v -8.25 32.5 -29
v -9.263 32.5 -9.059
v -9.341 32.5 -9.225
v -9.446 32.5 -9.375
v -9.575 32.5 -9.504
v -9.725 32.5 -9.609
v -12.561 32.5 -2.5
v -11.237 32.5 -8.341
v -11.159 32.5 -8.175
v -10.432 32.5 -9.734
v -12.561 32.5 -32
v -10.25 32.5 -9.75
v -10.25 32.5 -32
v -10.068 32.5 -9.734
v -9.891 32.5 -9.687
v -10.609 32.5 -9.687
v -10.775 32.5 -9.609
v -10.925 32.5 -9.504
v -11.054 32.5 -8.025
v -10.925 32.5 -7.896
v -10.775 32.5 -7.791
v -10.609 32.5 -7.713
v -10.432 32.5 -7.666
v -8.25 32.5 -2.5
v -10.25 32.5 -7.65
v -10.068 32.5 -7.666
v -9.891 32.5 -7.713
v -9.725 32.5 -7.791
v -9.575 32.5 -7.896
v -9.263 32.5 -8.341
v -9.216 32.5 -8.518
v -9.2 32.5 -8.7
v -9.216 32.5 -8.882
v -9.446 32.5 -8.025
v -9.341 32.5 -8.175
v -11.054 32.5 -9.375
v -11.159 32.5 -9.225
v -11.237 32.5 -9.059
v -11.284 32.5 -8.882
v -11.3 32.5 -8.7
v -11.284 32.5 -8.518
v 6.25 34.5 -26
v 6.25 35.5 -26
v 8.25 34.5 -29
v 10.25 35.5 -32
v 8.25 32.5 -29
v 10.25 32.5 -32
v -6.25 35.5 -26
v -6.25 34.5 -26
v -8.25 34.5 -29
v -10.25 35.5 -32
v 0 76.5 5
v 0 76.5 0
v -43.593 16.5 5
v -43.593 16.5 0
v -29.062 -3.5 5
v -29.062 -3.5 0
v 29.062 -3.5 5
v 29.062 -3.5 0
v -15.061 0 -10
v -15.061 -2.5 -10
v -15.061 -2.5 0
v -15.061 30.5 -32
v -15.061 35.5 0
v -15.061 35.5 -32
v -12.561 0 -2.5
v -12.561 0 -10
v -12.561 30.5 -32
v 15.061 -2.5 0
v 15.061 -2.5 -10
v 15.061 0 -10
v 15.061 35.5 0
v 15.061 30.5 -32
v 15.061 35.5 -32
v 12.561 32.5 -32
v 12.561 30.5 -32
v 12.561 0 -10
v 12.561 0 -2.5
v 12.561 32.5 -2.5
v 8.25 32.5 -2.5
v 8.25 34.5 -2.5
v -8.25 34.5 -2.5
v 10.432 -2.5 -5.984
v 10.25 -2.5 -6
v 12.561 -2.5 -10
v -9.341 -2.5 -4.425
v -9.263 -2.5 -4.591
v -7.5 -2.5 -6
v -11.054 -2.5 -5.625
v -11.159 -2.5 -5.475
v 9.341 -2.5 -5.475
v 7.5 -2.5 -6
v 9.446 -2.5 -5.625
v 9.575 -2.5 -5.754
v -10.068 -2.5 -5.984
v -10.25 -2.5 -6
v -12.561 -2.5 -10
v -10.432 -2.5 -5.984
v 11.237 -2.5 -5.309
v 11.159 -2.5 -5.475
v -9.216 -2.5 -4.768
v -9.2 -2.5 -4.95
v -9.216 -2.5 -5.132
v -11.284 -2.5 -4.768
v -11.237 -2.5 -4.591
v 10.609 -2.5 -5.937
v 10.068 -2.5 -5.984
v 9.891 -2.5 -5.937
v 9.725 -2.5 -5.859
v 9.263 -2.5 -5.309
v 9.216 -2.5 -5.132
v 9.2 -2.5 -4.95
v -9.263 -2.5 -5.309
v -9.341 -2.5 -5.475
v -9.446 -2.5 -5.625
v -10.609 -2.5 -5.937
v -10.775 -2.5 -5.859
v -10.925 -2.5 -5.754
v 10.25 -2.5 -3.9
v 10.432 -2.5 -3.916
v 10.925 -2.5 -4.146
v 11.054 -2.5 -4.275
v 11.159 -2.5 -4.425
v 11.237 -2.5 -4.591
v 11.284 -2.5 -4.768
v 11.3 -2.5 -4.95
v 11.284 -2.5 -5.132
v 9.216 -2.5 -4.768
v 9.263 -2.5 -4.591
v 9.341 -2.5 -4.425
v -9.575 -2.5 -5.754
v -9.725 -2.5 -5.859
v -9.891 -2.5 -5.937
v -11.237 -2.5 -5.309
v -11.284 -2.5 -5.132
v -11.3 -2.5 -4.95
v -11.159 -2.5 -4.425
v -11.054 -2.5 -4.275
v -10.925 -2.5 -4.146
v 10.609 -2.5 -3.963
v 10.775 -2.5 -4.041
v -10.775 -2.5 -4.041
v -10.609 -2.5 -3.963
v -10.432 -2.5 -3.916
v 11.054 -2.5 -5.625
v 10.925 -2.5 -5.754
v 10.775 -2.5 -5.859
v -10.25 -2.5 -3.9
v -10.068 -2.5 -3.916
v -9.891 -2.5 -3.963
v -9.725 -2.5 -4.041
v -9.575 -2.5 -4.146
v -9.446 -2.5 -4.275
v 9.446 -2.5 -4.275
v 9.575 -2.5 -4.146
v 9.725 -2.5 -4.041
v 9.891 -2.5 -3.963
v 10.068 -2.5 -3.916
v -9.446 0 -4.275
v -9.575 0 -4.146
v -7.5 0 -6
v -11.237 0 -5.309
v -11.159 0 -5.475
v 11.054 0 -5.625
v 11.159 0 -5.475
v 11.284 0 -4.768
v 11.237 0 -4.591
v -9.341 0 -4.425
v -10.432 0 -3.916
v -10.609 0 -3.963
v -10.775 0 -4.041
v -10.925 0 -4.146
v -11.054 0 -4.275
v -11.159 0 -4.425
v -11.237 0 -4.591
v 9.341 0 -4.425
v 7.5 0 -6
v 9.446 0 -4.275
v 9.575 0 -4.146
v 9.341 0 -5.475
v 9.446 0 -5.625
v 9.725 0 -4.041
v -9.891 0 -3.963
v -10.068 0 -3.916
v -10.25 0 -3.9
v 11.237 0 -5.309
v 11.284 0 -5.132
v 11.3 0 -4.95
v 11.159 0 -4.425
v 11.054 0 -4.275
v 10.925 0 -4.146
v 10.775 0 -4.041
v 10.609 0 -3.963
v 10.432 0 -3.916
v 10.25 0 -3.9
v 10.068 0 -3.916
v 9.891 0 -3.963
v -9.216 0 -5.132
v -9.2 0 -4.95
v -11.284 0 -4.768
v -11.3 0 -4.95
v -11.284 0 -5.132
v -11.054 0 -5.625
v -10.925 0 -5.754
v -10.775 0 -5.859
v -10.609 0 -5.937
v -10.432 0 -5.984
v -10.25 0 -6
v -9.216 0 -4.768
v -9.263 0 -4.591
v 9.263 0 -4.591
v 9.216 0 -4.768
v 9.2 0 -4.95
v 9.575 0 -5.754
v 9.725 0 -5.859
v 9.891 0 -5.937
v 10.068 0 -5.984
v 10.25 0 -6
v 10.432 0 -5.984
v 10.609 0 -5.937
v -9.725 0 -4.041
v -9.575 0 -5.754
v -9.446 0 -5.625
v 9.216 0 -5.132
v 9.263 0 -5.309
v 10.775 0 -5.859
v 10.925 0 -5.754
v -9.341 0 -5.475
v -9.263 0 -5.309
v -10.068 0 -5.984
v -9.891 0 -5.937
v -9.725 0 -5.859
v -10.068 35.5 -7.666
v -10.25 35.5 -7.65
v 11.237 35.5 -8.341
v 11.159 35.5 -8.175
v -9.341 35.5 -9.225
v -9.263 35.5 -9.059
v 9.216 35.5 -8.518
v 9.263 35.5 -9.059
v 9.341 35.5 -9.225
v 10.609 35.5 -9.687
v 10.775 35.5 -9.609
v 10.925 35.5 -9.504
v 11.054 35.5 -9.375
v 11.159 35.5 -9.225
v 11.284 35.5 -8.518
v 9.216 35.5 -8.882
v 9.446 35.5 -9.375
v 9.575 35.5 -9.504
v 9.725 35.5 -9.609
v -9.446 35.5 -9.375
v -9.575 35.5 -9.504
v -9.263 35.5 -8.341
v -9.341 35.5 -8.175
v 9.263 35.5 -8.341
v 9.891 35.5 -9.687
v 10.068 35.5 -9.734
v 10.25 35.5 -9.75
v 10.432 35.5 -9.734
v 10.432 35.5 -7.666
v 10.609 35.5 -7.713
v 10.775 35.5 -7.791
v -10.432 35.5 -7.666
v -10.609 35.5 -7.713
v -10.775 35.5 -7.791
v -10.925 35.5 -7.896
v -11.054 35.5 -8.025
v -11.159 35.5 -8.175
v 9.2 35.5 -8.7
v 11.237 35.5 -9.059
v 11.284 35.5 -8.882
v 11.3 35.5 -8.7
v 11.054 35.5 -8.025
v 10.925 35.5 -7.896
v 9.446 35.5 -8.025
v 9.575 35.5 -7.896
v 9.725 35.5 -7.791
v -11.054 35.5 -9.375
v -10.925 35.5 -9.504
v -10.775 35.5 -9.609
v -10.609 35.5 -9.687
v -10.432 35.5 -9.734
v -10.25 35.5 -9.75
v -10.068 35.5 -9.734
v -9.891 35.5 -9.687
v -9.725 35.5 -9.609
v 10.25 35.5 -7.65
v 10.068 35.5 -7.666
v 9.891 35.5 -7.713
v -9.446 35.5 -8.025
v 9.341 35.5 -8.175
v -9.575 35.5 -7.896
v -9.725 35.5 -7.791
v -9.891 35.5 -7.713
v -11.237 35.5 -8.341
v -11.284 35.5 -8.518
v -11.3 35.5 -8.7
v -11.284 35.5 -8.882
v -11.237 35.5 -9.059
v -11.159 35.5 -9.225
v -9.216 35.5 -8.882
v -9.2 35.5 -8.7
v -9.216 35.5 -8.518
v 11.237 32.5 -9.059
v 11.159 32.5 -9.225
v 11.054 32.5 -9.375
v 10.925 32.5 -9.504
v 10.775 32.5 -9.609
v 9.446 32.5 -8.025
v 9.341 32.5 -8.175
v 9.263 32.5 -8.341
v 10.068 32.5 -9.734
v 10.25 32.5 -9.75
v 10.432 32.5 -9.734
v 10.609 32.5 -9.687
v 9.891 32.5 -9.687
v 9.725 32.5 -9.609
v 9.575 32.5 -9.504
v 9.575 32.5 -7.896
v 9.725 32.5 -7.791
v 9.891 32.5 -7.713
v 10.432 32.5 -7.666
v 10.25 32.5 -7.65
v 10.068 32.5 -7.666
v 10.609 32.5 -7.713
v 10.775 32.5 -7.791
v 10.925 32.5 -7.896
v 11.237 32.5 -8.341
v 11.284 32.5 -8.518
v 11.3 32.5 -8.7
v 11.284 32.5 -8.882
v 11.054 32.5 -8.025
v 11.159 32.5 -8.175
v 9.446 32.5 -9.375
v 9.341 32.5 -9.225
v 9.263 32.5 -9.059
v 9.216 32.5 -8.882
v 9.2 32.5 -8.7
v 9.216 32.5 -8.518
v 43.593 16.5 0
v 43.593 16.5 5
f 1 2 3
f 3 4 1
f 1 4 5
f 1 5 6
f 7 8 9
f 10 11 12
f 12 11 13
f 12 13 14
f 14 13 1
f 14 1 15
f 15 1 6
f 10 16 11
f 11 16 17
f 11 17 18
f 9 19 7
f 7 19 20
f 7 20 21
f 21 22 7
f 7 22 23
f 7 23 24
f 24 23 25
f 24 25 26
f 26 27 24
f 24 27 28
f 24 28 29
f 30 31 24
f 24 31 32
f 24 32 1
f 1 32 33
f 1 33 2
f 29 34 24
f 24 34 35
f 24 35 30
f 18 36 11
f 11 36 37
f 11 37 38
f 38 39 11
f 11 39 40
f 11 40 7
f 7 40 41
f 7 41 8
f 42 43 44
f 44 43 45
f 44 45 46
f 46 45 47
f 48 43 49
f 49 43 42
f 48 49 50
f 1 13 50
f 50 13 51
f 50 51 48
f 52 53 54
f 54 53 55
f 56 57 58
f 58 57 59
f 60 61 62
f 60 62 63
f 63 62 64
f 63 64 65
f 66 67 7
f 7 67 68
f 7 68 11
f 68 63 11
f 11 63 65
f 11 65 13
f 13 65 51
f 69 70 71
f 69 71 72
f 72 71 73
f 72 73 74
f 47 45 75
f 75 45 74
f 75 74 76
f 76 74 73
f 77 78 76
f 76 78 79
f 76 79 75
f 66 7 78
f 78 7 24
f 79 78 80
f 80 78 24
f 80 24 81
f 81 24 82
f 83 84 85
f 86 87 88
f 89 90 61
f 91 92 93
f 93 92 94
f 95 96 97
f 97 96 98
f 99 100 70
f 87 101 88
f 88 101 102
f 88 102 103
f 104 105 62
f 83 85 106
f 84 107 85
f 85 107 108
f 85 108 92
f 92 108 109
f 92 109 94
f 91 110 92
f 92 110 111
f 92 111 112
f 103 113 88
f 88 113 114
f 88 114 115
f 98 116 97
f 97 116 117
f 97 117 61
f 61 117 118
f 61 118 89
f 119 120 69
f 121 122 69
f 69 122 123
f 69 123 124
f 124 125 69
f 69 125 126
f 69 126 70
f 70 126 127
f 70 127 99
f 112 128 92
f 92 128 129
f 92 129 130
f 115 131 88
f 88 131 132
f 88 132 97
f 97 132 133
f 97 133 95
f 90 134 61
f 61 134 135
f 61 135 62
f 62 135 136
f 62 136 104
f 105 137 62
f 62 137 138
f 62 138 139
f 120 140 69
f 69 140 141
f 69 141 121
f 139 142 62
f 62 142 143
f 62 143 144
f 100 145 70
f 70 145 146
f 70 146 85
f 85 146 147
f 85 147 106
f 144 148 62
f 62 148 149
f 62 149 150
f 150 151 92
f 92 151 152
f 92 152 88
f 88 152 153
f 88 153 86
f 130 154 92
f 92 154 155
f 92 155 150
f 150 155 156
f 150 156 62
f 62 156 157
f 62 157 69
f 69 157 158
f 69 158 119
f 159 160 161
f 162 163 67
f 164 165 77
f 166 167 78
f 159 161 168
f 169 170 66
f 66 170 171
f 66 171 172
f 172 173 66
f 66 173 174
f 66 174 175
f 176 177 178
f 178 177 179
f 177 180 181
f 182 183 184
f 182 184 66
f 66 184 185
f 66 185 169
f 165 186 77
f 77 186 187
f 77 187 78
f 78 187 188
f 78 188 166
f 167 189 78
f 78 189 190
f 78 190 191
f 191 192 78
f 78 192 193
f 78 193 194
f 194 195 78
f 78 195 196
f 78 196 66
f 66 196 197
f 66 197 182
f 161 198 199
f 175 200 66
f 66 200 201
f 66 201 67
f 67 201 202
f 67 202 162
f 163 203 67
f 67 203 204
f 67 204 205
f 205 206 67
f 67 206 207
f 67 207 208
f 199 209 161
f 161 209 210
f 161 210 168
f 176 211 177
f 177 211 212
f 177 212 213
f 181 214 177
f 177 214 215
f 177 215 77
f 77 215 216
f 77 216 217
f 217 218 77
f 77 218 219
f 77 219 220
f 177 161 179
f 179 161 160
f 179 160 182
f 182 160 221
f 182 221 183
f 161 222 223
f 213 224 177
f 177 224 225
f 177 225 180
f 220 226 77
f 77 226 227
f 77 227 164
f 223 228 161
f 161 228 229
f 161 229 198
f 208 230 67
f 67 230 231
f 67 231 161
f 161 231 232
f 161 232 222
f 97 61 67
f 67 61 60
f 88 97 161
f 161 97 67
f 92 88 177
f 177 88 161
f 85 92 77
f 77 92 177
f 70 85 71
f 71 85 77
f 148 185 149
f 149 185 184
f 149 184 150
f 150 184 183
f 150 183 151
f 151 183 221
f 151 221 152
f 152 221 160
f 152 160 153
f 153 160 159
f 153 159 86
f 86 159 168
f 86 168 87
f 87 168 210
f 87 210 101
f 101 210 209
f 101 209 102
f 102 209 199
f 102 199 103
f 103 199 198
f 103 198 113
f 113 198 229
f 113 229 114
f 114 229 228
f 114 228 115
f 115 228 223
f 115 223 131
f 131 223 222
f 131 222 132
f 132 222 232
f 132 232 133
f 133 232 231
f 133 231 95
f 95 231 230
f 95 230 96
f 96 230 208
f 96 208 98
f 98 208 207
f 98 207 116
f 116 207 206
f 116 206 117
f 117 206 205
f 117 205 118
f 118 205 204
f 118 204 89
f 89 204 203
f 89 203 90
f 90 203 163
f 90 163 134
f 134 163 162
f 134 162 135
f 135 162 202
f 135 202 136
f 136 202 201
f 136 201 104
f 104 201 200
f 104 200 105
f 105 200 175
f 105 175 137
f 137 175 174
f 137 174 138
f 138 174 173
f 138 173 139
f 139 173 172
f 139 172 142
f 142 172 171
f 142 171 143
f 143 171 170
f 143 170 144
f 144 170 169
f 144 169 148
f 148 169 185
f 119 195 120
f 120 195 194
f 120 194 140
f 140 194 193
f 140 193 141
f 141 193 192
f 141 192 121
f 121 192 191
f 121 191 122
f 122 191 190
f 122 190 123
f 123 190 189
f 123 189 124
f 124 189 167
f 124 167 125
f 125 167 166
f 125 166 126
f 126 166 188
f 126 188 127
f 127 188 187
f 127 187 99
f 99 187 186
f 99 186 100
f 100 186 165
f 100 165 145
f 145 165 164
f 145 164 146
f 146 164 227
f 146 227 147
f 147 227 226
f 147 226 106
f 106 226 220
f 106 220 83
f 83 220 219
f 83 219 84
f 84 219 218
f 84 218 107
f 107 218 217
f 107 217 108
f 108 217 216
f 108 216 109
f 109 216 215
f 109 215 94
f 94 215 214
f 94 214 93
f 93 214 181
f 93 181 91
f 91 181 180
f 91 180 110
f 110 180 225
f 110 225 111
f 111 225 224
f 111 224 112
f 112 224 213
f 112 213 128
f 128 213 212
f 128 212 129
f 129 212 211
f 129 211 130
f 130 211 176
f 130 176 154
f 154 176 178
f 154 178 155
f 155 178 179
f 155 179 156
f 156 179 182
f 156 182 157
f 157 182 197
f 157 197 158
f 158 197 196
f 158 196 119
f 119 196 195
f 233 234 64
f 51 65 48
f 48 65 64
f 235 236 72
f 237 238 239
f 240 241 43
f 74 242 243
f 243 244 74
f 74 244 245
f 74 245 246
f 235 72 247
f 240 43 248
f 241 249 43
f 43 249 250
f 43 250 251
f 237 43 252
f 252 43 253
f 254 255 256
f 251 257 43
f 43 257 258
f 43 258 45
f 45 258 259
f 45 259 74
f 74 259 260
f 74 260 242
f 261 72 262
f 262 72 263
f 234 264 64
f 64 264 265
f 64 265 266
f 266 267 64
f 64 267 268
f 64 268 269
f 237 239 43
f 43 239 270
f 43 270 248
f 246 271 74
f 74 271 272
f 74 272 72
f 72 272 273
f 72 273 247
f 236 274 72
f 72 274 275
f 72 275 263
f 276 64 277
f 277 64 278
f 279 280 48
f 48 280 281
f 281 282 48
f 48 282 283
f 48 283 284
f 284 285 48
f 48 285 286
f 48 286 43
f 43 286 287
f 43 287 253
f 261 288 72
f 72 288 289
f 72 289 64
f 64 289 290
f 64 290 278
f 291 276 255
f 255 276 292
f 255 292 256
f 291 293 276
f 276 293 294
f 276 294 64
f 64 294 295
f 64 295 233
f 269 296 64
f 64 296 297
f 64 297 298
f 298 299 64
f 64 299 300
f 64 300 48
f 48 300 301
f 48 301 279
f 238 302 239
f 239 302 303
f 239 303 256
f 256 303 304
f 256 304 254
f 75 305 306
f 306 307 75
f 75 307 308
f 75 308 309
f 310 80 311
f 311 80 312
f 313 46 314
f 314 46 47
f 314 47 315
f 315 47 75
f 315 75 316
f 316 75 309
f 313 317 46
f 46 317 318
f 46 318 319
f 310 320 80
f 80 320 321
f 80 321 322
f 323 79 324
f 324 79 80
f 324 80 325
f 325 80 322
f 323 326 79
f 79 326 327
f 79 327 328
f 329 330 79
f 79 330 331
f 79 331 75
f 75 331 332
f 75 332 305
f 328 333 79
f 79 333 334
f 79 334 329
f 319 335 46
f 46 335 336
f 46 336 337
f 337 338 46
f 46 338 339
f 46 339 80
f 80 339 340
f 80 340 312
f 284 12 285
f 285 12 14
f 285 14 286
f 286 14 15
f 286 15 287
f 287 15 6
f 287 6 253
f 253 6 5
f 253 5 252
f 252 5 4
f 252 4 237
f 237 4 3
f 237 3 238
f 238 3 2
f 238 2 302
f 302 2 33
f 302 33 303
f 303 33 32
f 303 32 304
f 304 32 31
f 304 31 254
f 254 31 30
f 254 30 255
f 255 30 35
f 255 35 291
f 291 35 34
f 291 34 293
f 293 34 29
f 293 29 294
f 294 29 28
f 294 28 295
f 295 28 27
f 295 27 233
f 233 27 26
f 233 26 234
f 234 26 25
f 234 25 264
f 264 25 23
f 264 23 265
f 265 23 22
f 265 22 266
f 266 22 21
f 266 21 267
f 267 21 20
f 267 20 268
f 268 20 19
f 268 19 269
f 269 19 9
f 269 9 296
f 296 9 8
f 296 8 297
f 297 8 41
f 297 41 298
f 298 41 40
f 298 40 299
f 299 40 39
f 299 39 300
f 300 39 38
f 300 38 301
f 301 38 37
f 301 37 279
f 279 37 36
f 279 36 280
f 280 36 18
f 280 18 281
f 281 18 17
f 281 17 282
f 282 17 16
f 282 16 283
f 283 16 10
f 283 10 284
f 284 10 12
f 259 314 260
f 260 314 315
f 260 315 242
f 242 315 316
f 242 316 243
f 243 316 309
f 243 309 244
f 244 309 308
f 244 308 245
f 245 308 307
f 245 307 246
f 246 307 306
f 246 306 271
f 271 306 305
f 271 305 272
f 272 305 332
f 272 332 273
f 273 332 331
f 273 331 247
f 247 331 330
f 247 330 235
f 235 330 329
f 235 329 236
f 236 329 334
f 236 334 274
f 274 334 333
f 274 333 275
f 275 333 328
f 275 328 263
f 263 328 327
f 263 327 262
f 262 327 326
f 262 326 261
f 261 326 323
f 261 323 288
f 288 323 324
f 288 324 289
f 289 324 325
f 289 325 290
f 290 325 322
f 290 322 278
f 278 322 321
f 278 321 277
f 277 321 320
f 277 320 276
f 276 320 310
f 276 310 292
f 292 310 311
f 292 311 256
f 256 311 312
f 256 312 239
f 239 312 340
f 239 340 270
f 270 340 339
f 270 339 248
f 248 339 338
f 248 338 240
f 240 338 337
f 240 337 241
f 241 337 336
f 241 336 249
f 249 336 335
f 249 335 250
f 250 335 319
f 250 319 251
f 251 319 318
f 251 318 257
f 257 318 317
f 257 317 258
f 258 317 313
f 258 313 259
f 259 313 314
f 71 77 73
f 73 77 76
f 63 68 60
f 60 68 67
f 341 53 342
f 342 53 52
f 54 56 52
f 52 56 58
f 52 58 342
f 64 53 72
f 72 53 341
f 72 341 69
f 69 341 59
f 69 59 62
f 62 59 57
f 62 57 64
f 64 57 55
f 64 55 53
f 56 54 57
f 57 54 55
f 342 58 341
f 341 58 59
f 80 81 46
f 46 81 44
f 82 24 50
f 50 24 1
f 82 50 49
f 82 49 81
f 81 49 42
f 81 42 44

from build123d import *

# Parameters (mm, degrees)
BOSS_EXTRUDE1_DEPTH     = 32.5
SKETCH4_R               = 1.05
BOSS_EXTRUDE2_DEPTH     = 2.5
SKETCH5_R               = 1.05
BOSS_EXTRUDE3_DEPTH     = 3
CUT_EXTRUDE1_DEPTH      = 31.122
BOSS_EXTRUDE4_DEPTH     = 5
BOSS_EXTRUDE6_DEPTH     = 5
CUT_EXTRUDE2_DEPTH      = 6
SKETCH12_W              = 16.4999
SKETCH12_H              = 2
CUT_EXTRUDE4_DEPTH      = 10
CUT_EXTRUDE4_DEPTH_BACK = 23.5


with BuildPart() as part:
    # Sketch2 → Boss-Extrude1 (new body)
    with BuildSketch(Plane(origin=(0, 0, 0), x_dir=(1, 0, 0), z_dir=(0, 1, 0))):
        Polygon((15.061, 0), (15.061, 32), (12.561, 32), (12.561, 2.5), (-12.561, 2.5), (-12.561, 32), (-15.061, 32), (-15.061, 0), align=None)
    extrude(amount=BOSS_EXTRUDE1_DEPTH)

    # Sketch4 → Boss-Extrude2 (add)
    with BuildSketch(Plane.XZ):
        Polygon((-7.5, -6), (7.5, -6), (12.561, -10), (15.061, -10), (15.061, 0), (-15.061, 0), (-15.061, -10), (-12.561, -10), align=None)
        with Locations((-10.2499, -4.95)):
            Circle(SKETCH4_R, mode=Mode.SUBTRACT)
        with Locations((10.2499, -4.95)):
            Circle(SKETCH4_R, mode=Mode.SUBTRACT)
    extrude(amount=BOSS_EXTRUDE2_DEPTH)

    # Sketch5 → Boss-Extrude3 (add)
    with BuildSketch(Plane(origin=(0, 32.5, 0), x_dir=(1, 0, 0), z_dir=(0, 1, 0))):
        Polygon((-15.061, 32), (-10.2499, 32), (-6.25, 26), (6.25, 26), (10.2499, 32), (15.061, 32), (15.061, 0), (-15.061, 0), align=None)
        with Locations((-10.2499, 8.7)):
            Circle(SKETCH5_R, mode=Mode.SUBTRACT)
        with Locations((10.2499, 8.7)):
            Circle(SKETCH5_R, mode=Mode.SUBTRACT)
    extrude(amount=BOSS_EXTRUDE3_DEPTH)

    # Sketch6 → Cut-Extrude1 (cut, through all)
    with BuildSketch(Plane.ZY.offset(15.061)):
        Polygon((-10, 0), (-32, 30.5), (-32, 0), align=None)
    extrude(amount=-CUT_EXTRUDE1_DEPTH, mode=Mode.SUBTRACT)

    # Sketch8 → Boss-Extrude4 (add)
    with BuildSketch(Plane.XY):
        Polygon((0, 76.5), (43.59255168, 16.5), (-43.59255168, 16.5), align=None)
    extrude(amount=BOSS_EXTRUDE4_DEPTH)

    # Sketch9 → Boss-Extrude6 (add)
    with BuildSketch(Plane.XY):
        Polygon((-43.59255168, 16.5), (-58.12340224, -3.5), (58.12340224, -3.5), (43.59255168, 16.5), align=None)
    extrude(amount=BOSS_EXTRUDE6_DEPTH)

    # Sketch10 → Cut-Extrude2 (cut, through all)
    with BuildSketch(Plane(origin=(0, 0, 0), x_dir=(-1, 0, 0), z_dir=(0, 0, -1))):
        Polygon((-29.06170112, -3.5), (-43.59255168, 16.5), (-58.12340224, -3.5), align=None)
        Polygon((58.12340224, -3.5), (43.59255168, 16.5), (29.06170112, -3.5), align=None)
    extrude(amount=-CUT_EXTRUDE2_DEPTH, mode=Mode.SUBTRACT)

    # Sketch12 → Cut-Extrude4 (cut, two sides)
    with BuildSketch(Plane(origin=(0, 0, -26), x_dir=(-1, 0, 0), z_dir=(0, 0, -1))) as cut_extrude4_sk:
        with Locations((0, 33.5)):
            Rectangle(SKETCH12_W, SKETCH12_H)
    extrude(amount=CUT_EXTRUDE4_DEPTH, mode=Mode.SUBTRACT)
    extrude(cut_extrude4_sk.sketch, amount=-CUT_EXTRUDE4_DEPTH_BACK, mode=Mode.SUBTRACT)


solid = part.part
